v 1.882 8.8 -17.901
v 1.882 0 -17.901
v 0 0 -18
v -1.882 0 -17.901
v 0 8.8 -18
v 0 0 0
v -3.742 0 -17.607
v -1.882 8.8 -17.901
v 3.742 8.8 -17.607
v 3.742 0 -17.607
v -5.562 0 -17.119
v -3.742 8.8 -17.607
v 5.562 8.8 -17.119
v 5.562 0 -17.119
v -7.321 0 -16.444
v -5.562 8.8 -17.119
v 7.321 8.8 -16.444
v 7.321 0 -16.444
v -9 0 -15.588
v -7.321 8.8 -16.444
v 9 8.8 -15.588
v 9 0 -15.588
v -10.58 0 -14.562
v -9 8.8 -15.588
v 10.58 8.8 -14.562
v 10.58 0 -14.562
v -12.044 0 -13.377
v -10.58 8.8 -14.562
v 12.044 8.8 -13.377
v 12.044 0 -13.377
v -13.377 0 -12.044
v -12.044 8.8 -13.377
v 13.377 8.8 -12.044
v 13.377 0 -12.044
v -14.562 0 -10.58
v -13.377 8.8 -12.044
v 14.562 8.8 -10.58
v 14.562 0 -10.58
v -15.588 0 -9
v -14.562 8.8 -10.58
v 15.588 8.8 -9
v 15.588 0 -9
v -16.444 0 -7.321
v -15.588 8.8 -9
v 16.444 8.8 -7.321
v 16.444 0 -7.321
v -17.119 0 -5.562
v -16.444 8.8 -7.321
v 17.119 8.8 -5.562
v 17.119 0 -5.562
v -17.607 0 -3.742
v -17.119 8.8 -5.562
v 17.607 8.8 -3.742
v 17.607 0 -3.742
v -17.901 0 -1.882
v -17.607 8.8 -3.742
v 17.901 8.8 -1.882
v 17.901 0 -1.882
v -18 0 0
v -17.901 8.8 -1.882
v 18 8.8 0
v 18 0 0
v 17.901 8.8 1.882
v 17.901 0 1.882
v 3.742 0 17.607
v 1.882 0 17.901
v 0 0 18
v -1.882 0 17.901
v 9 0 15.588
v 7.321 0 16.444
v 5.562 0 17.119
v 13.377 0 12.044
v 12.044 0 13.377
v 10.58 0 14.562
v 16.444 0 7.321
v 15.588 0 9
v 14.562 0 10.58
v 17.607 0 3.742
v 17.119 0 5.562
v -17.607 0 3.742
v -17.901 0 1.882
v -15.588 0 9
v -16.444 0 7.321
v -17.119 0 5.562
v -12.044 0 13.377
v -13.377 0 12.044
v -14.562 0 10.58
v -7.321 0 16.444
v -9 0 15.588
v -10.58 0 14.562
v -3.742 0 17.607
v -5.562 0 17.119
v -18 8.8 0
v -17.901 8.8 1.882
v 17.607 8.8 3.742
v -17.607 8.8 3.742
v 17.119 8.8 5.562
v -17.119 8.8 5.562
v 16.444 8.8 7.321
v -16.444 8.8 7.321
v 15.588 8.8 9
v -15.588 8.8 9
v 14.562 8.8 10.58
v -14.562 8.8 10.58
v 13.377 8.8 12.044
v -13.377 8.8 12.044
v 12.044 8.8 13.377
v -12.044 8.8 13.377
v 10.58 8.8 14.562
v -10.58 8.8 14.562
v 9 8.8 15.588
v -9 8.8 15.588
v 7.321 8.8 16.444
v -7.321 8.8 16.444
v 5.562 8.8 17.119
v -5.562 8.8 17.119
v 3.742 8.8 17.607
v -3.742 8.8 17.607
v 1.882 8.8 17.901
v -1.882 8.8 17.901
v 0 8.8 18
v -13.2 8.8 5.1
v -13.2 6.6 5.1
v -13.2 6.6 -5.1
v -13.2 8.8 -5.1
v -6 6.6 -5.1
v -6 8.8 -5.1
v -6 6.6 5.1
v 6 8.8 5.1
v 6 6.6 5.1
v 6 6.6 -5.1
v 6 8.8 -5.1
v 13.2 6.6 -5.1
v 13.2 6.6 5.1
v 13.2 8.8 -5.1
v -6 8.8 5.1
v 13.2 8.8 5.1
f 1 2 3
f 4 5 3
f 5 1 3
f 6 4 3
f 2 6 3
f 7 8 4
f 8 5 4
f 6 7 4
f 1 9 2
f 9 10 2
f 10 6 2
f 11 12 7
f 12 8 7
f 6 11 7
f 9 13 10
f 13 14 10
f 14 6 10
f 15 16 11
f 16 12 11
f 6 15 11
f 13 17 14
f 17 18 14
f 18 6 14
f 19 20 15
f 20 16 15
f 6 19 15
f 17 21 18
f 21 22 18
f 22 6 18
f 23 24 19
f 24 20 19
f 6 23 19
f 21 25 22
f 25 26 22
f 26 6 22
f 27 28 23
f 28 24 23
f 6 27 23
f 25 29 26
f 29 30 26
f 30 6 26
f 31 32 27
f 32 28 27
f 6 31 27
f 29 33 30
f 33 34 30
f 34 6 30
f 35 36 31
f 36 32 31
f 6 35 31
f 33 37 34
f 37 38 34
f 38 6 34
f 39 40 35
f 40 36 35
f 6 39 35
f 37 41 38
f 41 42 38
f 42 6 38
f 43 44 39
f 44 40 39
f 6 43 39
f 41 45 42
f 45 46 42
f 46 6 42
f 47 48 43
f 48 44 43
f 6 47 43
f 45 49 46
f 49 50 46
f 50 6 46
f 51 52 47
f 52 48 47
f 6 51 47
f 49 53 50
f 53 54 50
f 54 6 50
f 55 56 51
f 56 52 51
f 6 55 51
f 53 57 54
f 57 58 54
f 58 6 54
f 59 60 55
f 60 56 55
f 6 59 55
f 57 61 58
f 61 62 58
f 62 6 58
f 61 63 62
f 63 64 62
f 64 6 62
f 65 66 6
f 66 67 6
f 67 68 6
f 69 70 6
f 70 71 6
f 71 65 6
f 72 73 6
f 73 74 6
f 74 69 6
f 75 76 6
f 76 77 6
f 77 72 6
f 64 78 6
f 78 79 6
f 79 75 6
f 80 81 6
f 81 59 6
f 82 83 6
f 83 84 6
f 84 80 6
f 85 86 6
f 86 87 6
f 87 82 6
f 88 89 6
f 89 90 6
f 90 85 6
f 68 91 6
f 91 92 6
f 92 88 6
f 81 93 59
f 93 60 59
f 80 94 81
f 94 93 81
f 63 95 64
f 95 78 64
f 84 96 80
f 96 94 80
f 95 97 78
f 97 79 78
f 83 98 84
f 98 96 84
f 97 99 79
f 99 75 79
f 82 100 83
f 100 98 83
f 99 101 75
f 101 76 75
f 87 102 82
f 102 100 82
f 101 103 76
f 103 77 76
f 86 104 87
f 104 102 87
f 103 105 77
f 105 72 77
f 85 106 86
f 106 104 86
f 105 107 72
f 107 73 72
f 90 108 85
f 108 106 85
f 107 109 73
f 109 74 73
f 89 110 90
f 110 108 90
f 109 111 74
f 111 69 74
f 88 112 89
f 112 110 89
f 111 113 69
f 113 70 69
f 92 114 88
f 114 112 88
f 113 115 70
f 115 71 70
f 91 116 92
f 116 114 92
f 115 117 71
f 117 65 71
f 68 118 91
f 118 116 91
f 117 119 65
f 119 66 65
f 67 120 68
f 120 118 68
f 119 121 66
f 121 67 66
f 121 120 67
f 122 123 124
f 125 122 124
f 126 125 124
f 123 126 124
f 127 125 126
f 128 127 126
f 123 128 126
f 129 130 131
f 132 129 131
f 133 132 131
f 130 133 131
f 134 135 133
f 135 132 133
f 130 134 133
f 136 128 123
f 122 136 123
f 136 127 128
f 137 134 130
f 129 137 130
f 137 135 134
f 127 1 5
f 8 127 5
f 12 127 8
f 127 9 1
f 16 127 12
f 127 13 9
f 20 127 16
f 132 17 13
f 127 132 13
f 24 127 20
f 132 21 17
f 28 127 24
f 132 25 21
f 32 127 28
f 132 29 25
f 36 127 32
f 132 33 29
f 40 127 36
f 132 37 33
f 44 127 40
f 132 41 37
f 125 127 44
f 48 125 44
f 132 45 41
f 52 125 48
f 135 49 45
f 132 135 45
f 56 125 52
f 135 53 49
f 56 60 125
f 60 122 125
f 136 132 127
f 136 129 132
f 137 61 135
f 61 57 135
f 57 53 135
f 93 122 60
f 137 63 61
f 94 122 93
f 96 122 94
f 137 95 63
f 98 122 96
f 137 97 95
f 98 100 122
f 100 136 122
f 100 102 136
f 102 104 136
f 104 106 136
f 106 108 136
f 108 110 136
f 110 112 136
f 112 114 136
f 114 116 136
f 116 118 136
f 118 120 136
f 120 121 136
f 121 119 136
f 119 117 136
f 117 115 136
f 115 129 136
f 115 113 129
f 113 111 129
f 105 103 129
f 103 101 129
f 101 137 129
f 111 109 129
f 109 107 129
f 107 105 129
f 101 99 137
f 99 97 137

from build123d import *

# Parameters (mm, degrees)
SKETCH1_R           = 18
BOSS_EXTRUDE1_DEPTH = 8.8
SKETCH2_W           = 7.2
SKETCH2_H           = 10.2
CUT_EXTRUDE1_DEPTH  = 2.2


with BuildPart() as part:
    # Sketch1 → Boss-Extrude1 (new body)
    with BuildSketch(Plane(origin=(0, 0, 0), x_dir=(1, 0, 0), z_dir=(0, 1, 0))):
        with Locations(Location((0, 0, 0), (0, 0, 270))):
            Circle(SKETCH1_R)
    extrude(amount=BOSS_EXTRUDE1_DEPTH)

    # Sketch2 → Cut-Extrude1 (cut)
    with BuildSketch(Plane(origin=(0, 8.8, 0), x_dir=(1, 0, 0), z_dir=(0, 1, 0))):
        with Locations((-9.6, 0)):
            Rectangle(SKETCH2_W, SKETCH2_H)
        with Locations((9.6, 0)):
            Rectangle(SKETCH2_W, SKETCH2_H)
    extrude(amount=-CUT_EXTRUDE1_DEPTH, mode=Mode.SUBTRACT)


solid = part.part
